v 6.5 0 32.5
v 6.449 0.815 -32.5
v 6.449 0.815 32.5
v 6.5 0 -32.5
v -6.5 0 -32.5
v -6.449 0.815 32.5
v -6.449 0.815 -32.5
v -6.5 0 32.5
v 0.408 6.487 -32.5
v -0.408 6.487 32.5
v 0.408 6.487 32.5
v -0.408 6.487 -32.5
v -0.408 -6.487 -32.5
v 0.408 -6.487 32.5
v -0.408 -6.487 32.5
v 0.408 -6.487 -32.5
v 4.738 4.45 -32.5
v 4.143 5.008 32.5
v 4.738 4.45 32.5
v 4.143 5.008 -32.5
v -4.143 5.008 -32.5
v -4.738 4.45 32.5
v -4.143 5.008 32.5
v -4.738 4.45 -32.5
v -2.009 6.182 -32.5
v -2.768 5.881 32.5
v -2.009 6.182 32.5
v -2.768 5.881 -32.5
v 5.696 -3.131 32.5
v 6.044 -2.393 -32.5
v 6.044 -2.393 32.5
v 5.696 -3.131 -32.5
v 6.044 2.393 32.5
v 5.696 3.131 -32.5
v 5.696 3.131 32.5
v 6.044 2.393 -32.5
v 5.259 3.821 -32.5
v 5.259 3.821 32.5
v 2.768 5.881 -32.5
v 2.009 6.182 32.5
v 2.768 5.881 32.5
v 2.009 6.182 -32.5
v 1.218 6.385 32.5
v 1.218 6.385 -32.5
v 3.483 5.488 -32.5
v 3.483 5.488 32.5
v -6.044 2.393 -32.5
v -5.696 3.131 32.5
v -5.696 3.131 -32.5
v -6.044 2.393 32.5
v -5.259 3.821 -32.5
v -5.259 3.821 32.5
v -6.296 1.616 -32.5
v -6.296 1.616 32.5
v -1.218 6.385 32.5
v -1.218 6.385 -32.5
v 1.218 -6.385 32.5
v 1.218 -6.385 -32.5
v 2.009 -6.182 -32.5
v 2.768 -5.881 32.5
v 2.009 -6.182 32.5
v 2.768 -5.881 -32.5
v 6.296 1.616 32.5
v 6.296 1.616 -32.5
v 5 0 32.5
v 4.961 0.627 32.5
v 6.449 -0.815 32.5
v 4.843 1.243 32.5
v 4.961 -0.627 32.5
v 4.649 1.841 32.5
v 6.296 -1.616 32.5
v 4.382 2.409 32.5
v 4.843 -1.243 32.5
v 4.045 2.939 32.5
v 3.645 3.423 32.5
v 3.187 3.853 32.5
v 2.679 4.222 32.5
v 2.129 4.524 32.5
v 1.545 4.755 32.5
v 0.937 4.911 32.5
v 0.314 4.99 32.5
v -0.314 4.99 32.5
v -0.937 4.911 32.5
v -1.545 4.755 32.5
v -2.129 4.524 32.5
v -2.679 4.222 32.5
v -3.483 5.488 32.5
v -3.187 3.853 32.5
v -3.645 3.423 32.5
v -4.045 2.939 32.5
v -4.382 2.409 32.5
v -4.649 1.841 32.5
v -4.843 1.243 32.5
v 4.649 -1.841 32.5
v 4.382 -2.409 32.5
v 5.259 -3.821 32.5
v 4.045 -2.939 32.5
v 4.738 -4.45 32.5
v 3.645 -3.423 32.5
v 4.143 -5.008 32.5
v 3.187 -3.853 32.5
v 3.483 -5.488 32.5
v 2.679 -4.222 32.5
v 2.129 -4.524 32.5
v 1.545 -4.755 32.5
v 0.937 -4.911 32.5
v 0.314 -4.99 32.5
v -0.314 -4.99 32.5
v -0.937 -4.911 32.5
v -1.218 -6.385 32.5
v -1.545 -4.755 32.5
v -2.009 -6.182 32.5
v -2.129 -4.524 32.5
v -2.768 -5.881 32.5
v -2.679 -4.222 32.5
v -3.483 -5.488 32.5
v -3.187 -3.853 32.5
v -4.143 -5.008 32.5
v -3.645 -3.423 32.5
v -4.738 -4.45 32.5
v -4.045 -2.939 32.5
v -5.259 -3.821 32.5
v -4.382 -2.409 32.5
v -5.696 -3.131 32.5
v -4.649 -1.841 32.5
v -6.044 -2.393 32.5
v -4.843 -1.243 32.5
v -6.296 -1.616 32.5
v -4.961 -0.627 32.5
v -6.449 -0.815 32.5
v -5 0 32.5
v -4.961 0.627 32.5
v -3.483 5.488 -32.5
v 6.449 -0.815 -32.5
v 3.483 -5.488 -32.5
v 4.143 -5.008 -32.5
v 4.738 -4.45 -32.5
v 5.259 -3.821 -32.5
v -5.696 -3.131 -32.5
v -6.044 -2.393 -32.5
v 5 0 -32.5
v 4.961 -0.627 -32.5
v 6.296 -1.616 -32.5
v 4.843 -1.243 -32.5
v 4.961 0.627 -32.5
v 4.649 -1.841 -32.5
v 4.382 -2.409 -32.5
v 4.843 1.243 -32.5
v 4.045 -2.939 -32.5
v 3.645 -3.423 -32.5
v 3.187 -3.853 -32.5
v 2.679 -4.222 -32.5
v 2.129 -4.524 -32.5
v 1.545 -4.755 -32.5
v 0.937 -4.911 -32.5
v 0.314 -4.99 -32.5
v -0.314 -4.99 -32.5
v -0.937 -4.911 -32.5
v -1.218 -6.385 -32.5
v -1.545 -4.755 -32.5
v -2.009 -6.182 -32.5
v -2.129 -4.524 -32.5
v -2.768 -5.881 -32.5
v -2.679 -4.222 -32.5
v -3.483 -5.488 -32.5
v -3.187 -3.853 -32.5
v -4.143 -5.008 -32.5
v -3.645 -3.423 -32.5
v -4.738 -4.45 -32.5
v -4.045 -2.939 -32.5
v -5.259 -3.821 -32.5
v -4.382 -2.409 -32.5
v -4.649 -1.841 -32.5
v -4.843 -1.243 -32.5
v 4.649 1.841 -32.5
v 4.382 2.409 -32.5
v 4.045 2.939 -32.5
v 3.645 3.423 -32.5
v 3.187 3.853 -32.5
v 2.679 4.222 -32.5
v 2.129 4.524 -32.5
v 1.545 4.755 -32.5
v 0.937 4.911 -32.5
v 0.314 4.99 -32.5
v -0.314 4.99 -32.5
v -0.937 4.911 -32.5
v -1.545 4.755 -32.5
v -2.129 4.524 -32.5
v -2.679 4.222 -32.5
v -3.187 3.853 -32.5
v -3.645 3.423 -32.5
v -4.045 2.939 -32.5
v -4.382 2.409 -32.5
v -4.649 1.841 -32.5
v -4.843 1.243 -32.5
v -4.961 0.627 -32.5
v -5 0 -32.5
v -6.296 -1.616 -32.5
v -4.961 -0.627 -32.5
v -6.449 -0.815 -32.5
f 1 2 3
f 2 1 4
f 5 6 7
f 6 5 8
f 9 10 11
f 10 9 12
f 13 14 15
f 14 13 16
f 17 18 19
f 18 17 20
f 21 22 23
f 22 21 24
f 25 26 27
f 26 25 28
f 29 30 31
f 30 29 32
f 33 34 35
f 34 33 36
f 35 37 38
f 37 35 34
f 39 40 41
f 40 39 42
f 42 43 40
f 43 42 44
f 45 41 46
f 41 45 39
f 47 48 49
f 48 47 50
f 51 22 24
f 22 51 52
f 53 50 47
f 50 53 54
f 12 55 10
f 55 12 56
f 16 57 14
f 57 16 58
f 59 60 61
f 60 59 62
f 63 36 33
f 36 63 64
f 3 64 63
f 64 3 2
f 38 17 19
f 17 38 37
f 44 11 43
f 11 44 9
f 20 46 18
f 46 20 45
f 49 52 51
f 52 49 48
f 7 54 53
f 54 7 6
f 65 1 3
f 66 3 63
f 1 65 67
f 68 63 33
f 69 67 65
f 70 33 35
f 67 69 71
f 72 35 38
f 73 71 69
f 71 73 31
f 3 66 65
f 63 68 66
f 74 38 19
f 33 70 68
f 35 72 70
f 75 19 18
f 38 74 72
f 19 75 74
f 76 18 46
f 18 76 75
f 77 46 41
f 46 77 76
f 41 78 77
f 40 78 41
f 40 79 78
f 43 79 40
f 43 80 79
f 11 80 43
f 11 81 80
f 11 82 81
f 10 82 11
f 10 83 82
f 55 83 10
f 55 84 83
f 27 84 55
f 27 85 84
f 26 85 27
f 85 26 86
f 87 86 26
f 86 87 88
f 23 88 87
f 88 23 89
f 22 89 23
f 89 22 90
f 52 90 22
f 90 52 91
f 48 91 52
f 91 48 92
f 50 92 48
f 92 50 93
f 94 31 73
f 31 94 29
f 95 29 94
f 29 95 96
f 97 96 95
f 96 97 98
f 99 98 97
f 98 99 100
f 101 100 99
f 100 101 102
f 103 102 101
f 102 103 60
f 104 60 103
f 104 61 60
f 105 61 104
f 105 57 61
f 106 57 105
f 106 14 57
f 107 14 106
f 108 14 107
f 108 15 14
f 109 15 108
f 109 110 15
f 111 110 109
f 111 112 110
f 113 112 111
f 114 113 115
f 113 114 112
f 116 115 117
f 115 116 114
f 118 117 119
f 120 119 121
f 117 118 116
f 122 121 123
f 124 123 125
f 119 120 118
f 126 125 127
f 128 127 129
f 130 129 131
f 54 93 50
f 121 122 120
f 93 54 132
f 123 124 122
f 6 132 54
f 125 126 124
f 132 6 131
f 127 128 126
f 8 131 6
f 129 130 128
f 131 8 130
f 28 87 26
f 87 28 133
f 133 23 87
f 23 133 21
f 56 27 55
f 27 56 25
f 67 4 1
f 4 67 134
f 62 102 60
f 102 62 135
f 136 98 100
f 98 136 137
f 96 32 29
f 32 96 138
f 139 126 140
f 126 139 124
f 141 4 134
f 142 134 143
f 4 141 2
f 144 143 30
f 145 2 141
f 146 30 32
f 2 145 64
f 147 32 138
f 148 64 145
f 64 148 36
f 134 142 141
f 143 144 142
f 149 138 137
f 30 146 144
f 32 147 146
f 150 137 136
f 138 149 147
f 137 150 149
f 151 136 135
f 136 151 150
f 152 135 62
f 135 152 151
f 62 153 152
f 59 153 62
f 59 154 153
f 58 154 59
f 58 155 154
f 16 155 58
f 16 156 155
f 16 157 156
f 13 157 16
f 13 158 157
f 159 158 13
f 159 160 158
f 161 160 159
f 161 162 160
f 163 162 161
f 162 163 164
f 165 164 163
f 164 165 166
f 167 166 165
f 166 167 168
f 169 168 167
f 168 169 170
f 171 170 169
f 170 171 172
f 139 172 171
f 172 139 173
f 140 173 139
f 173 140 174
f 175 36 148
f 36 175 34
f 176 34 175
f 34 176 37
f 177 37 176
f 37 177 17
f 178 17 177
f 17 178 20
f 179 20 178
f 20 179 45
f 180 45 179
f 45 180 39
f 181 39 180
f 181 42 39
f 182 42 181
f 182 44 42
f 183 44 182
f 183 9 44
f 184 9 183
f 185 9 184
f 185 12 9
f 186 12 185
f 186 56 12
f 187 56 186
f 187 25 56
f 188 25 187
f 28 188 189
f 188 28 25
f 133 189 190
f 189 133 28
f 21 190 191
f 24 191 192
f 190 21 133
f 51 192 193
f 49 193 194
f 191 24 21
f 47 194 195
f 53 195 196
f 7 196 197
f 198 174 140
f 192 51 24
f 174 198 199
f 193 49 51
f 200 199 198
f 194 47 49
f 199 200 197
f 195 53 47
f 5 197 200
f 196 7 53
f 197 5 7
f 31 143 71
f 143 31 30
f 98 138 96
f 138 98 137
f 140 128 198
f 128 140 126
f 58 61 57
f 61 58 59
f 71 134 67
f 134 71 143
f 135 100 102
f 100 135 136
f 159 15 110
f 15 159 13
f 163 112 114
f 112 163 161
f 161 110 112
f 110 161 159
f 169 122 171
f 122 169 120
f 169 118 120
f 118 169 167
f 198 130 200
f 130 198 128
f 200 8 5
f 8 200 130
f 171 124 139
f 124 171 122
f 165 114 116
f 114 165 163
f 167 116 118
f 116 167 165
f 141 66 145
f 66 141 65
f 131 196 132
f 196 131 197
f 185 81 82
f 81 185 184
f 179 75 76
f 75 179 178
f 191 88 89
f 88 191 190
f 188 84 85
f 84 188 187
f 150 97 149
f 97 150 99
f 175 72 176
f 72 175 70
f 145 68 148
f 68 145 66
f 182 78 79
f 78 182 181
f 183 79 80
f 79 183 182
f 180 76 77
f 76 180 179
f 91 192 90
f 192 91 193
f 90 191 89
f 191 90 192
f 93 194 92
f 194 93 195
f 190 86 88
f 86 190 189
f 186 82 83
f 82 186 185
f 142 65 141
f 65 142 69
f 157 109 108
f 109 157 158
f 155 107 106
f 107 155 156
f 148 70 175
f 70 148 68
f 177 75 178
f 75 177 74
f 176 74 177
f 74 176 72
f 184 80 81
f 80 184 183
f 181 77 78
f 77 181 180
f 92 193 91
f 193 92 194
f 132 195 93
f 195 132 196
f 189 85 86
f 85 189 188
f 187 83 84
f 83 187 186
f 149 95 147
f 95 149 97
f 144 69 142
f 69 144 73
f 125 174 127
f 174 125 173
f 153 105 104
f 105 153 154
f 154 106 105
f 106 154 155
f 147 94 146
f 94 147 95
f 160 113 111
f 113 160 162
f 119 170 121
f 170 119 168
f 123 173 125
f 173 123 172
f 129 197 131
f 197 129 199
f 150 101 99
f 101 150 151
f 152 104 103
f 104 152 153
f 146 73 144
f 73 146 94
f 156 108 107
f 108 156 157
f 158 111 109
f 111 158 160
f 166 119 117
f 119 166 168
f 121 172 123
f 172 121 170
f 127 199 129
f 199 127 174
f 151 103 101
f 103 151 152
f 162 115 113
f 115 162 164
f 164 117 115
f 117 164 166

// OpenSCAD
$fn = 50;


difference() {
	union() {
		translate(v = [0, 0, -32.5000000000]) {
			cylinder(h = 65, r = 6.5000000000);
		}
	}
	union() {
		translate(v = [0, 0, -100.0000000000]) {
			cylinder(h = 200, r = 5);
		}
	}
}
